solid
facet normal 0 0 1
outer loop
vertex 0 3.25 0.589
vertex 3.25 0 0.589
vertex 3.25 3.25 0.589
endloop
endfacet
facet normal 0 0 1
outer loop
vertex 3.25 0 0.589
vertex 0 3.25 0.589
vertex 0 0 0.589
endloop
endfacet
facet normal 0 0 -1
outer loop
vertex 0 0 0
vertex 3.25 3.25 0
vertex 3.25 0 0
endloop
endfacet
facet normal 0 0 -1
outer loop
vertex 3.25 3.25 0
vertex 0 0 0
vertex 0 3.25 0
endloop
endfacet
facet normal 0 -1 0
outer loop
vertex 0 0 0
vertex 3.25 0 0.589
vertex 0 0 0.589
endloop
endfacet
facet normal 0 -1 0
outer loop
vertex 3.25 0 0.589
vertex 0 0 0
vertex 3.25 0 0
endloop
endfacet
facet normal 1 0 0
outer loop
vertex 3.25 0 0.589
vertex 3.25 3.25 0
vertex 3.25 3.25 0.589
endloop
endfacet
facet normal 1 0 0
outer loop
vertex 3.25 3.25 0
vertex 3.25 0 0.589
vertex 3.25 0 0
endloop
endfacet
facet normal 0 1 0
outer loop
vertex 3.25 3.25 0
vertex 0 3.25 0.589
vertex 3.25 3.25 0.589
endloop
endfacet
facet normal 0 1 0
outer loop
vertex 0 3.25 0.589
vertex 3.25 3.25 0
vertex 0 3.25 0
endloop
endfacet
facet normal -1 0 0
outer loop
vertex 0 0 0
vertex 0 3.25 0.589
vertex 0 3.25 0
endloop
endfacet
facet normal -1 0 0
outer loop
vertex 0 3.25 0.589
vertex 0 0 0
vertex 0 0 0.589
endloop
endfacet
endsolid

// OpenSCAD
/* Warning, this is a very basic generator with a lot of approximation 
input data : [WLCSP, FWB, 3.25x3.25x0.589mm, 55, , A, C04-21251A]
generated by com.zoubworld.electronics.cad.model3d.Basic
Date : Sun Feb 15 10:50:49 CET 2026
*/

//body
color("black")
translate([0,0,0])
cube([3.25,3.25,0.589], center=false);
